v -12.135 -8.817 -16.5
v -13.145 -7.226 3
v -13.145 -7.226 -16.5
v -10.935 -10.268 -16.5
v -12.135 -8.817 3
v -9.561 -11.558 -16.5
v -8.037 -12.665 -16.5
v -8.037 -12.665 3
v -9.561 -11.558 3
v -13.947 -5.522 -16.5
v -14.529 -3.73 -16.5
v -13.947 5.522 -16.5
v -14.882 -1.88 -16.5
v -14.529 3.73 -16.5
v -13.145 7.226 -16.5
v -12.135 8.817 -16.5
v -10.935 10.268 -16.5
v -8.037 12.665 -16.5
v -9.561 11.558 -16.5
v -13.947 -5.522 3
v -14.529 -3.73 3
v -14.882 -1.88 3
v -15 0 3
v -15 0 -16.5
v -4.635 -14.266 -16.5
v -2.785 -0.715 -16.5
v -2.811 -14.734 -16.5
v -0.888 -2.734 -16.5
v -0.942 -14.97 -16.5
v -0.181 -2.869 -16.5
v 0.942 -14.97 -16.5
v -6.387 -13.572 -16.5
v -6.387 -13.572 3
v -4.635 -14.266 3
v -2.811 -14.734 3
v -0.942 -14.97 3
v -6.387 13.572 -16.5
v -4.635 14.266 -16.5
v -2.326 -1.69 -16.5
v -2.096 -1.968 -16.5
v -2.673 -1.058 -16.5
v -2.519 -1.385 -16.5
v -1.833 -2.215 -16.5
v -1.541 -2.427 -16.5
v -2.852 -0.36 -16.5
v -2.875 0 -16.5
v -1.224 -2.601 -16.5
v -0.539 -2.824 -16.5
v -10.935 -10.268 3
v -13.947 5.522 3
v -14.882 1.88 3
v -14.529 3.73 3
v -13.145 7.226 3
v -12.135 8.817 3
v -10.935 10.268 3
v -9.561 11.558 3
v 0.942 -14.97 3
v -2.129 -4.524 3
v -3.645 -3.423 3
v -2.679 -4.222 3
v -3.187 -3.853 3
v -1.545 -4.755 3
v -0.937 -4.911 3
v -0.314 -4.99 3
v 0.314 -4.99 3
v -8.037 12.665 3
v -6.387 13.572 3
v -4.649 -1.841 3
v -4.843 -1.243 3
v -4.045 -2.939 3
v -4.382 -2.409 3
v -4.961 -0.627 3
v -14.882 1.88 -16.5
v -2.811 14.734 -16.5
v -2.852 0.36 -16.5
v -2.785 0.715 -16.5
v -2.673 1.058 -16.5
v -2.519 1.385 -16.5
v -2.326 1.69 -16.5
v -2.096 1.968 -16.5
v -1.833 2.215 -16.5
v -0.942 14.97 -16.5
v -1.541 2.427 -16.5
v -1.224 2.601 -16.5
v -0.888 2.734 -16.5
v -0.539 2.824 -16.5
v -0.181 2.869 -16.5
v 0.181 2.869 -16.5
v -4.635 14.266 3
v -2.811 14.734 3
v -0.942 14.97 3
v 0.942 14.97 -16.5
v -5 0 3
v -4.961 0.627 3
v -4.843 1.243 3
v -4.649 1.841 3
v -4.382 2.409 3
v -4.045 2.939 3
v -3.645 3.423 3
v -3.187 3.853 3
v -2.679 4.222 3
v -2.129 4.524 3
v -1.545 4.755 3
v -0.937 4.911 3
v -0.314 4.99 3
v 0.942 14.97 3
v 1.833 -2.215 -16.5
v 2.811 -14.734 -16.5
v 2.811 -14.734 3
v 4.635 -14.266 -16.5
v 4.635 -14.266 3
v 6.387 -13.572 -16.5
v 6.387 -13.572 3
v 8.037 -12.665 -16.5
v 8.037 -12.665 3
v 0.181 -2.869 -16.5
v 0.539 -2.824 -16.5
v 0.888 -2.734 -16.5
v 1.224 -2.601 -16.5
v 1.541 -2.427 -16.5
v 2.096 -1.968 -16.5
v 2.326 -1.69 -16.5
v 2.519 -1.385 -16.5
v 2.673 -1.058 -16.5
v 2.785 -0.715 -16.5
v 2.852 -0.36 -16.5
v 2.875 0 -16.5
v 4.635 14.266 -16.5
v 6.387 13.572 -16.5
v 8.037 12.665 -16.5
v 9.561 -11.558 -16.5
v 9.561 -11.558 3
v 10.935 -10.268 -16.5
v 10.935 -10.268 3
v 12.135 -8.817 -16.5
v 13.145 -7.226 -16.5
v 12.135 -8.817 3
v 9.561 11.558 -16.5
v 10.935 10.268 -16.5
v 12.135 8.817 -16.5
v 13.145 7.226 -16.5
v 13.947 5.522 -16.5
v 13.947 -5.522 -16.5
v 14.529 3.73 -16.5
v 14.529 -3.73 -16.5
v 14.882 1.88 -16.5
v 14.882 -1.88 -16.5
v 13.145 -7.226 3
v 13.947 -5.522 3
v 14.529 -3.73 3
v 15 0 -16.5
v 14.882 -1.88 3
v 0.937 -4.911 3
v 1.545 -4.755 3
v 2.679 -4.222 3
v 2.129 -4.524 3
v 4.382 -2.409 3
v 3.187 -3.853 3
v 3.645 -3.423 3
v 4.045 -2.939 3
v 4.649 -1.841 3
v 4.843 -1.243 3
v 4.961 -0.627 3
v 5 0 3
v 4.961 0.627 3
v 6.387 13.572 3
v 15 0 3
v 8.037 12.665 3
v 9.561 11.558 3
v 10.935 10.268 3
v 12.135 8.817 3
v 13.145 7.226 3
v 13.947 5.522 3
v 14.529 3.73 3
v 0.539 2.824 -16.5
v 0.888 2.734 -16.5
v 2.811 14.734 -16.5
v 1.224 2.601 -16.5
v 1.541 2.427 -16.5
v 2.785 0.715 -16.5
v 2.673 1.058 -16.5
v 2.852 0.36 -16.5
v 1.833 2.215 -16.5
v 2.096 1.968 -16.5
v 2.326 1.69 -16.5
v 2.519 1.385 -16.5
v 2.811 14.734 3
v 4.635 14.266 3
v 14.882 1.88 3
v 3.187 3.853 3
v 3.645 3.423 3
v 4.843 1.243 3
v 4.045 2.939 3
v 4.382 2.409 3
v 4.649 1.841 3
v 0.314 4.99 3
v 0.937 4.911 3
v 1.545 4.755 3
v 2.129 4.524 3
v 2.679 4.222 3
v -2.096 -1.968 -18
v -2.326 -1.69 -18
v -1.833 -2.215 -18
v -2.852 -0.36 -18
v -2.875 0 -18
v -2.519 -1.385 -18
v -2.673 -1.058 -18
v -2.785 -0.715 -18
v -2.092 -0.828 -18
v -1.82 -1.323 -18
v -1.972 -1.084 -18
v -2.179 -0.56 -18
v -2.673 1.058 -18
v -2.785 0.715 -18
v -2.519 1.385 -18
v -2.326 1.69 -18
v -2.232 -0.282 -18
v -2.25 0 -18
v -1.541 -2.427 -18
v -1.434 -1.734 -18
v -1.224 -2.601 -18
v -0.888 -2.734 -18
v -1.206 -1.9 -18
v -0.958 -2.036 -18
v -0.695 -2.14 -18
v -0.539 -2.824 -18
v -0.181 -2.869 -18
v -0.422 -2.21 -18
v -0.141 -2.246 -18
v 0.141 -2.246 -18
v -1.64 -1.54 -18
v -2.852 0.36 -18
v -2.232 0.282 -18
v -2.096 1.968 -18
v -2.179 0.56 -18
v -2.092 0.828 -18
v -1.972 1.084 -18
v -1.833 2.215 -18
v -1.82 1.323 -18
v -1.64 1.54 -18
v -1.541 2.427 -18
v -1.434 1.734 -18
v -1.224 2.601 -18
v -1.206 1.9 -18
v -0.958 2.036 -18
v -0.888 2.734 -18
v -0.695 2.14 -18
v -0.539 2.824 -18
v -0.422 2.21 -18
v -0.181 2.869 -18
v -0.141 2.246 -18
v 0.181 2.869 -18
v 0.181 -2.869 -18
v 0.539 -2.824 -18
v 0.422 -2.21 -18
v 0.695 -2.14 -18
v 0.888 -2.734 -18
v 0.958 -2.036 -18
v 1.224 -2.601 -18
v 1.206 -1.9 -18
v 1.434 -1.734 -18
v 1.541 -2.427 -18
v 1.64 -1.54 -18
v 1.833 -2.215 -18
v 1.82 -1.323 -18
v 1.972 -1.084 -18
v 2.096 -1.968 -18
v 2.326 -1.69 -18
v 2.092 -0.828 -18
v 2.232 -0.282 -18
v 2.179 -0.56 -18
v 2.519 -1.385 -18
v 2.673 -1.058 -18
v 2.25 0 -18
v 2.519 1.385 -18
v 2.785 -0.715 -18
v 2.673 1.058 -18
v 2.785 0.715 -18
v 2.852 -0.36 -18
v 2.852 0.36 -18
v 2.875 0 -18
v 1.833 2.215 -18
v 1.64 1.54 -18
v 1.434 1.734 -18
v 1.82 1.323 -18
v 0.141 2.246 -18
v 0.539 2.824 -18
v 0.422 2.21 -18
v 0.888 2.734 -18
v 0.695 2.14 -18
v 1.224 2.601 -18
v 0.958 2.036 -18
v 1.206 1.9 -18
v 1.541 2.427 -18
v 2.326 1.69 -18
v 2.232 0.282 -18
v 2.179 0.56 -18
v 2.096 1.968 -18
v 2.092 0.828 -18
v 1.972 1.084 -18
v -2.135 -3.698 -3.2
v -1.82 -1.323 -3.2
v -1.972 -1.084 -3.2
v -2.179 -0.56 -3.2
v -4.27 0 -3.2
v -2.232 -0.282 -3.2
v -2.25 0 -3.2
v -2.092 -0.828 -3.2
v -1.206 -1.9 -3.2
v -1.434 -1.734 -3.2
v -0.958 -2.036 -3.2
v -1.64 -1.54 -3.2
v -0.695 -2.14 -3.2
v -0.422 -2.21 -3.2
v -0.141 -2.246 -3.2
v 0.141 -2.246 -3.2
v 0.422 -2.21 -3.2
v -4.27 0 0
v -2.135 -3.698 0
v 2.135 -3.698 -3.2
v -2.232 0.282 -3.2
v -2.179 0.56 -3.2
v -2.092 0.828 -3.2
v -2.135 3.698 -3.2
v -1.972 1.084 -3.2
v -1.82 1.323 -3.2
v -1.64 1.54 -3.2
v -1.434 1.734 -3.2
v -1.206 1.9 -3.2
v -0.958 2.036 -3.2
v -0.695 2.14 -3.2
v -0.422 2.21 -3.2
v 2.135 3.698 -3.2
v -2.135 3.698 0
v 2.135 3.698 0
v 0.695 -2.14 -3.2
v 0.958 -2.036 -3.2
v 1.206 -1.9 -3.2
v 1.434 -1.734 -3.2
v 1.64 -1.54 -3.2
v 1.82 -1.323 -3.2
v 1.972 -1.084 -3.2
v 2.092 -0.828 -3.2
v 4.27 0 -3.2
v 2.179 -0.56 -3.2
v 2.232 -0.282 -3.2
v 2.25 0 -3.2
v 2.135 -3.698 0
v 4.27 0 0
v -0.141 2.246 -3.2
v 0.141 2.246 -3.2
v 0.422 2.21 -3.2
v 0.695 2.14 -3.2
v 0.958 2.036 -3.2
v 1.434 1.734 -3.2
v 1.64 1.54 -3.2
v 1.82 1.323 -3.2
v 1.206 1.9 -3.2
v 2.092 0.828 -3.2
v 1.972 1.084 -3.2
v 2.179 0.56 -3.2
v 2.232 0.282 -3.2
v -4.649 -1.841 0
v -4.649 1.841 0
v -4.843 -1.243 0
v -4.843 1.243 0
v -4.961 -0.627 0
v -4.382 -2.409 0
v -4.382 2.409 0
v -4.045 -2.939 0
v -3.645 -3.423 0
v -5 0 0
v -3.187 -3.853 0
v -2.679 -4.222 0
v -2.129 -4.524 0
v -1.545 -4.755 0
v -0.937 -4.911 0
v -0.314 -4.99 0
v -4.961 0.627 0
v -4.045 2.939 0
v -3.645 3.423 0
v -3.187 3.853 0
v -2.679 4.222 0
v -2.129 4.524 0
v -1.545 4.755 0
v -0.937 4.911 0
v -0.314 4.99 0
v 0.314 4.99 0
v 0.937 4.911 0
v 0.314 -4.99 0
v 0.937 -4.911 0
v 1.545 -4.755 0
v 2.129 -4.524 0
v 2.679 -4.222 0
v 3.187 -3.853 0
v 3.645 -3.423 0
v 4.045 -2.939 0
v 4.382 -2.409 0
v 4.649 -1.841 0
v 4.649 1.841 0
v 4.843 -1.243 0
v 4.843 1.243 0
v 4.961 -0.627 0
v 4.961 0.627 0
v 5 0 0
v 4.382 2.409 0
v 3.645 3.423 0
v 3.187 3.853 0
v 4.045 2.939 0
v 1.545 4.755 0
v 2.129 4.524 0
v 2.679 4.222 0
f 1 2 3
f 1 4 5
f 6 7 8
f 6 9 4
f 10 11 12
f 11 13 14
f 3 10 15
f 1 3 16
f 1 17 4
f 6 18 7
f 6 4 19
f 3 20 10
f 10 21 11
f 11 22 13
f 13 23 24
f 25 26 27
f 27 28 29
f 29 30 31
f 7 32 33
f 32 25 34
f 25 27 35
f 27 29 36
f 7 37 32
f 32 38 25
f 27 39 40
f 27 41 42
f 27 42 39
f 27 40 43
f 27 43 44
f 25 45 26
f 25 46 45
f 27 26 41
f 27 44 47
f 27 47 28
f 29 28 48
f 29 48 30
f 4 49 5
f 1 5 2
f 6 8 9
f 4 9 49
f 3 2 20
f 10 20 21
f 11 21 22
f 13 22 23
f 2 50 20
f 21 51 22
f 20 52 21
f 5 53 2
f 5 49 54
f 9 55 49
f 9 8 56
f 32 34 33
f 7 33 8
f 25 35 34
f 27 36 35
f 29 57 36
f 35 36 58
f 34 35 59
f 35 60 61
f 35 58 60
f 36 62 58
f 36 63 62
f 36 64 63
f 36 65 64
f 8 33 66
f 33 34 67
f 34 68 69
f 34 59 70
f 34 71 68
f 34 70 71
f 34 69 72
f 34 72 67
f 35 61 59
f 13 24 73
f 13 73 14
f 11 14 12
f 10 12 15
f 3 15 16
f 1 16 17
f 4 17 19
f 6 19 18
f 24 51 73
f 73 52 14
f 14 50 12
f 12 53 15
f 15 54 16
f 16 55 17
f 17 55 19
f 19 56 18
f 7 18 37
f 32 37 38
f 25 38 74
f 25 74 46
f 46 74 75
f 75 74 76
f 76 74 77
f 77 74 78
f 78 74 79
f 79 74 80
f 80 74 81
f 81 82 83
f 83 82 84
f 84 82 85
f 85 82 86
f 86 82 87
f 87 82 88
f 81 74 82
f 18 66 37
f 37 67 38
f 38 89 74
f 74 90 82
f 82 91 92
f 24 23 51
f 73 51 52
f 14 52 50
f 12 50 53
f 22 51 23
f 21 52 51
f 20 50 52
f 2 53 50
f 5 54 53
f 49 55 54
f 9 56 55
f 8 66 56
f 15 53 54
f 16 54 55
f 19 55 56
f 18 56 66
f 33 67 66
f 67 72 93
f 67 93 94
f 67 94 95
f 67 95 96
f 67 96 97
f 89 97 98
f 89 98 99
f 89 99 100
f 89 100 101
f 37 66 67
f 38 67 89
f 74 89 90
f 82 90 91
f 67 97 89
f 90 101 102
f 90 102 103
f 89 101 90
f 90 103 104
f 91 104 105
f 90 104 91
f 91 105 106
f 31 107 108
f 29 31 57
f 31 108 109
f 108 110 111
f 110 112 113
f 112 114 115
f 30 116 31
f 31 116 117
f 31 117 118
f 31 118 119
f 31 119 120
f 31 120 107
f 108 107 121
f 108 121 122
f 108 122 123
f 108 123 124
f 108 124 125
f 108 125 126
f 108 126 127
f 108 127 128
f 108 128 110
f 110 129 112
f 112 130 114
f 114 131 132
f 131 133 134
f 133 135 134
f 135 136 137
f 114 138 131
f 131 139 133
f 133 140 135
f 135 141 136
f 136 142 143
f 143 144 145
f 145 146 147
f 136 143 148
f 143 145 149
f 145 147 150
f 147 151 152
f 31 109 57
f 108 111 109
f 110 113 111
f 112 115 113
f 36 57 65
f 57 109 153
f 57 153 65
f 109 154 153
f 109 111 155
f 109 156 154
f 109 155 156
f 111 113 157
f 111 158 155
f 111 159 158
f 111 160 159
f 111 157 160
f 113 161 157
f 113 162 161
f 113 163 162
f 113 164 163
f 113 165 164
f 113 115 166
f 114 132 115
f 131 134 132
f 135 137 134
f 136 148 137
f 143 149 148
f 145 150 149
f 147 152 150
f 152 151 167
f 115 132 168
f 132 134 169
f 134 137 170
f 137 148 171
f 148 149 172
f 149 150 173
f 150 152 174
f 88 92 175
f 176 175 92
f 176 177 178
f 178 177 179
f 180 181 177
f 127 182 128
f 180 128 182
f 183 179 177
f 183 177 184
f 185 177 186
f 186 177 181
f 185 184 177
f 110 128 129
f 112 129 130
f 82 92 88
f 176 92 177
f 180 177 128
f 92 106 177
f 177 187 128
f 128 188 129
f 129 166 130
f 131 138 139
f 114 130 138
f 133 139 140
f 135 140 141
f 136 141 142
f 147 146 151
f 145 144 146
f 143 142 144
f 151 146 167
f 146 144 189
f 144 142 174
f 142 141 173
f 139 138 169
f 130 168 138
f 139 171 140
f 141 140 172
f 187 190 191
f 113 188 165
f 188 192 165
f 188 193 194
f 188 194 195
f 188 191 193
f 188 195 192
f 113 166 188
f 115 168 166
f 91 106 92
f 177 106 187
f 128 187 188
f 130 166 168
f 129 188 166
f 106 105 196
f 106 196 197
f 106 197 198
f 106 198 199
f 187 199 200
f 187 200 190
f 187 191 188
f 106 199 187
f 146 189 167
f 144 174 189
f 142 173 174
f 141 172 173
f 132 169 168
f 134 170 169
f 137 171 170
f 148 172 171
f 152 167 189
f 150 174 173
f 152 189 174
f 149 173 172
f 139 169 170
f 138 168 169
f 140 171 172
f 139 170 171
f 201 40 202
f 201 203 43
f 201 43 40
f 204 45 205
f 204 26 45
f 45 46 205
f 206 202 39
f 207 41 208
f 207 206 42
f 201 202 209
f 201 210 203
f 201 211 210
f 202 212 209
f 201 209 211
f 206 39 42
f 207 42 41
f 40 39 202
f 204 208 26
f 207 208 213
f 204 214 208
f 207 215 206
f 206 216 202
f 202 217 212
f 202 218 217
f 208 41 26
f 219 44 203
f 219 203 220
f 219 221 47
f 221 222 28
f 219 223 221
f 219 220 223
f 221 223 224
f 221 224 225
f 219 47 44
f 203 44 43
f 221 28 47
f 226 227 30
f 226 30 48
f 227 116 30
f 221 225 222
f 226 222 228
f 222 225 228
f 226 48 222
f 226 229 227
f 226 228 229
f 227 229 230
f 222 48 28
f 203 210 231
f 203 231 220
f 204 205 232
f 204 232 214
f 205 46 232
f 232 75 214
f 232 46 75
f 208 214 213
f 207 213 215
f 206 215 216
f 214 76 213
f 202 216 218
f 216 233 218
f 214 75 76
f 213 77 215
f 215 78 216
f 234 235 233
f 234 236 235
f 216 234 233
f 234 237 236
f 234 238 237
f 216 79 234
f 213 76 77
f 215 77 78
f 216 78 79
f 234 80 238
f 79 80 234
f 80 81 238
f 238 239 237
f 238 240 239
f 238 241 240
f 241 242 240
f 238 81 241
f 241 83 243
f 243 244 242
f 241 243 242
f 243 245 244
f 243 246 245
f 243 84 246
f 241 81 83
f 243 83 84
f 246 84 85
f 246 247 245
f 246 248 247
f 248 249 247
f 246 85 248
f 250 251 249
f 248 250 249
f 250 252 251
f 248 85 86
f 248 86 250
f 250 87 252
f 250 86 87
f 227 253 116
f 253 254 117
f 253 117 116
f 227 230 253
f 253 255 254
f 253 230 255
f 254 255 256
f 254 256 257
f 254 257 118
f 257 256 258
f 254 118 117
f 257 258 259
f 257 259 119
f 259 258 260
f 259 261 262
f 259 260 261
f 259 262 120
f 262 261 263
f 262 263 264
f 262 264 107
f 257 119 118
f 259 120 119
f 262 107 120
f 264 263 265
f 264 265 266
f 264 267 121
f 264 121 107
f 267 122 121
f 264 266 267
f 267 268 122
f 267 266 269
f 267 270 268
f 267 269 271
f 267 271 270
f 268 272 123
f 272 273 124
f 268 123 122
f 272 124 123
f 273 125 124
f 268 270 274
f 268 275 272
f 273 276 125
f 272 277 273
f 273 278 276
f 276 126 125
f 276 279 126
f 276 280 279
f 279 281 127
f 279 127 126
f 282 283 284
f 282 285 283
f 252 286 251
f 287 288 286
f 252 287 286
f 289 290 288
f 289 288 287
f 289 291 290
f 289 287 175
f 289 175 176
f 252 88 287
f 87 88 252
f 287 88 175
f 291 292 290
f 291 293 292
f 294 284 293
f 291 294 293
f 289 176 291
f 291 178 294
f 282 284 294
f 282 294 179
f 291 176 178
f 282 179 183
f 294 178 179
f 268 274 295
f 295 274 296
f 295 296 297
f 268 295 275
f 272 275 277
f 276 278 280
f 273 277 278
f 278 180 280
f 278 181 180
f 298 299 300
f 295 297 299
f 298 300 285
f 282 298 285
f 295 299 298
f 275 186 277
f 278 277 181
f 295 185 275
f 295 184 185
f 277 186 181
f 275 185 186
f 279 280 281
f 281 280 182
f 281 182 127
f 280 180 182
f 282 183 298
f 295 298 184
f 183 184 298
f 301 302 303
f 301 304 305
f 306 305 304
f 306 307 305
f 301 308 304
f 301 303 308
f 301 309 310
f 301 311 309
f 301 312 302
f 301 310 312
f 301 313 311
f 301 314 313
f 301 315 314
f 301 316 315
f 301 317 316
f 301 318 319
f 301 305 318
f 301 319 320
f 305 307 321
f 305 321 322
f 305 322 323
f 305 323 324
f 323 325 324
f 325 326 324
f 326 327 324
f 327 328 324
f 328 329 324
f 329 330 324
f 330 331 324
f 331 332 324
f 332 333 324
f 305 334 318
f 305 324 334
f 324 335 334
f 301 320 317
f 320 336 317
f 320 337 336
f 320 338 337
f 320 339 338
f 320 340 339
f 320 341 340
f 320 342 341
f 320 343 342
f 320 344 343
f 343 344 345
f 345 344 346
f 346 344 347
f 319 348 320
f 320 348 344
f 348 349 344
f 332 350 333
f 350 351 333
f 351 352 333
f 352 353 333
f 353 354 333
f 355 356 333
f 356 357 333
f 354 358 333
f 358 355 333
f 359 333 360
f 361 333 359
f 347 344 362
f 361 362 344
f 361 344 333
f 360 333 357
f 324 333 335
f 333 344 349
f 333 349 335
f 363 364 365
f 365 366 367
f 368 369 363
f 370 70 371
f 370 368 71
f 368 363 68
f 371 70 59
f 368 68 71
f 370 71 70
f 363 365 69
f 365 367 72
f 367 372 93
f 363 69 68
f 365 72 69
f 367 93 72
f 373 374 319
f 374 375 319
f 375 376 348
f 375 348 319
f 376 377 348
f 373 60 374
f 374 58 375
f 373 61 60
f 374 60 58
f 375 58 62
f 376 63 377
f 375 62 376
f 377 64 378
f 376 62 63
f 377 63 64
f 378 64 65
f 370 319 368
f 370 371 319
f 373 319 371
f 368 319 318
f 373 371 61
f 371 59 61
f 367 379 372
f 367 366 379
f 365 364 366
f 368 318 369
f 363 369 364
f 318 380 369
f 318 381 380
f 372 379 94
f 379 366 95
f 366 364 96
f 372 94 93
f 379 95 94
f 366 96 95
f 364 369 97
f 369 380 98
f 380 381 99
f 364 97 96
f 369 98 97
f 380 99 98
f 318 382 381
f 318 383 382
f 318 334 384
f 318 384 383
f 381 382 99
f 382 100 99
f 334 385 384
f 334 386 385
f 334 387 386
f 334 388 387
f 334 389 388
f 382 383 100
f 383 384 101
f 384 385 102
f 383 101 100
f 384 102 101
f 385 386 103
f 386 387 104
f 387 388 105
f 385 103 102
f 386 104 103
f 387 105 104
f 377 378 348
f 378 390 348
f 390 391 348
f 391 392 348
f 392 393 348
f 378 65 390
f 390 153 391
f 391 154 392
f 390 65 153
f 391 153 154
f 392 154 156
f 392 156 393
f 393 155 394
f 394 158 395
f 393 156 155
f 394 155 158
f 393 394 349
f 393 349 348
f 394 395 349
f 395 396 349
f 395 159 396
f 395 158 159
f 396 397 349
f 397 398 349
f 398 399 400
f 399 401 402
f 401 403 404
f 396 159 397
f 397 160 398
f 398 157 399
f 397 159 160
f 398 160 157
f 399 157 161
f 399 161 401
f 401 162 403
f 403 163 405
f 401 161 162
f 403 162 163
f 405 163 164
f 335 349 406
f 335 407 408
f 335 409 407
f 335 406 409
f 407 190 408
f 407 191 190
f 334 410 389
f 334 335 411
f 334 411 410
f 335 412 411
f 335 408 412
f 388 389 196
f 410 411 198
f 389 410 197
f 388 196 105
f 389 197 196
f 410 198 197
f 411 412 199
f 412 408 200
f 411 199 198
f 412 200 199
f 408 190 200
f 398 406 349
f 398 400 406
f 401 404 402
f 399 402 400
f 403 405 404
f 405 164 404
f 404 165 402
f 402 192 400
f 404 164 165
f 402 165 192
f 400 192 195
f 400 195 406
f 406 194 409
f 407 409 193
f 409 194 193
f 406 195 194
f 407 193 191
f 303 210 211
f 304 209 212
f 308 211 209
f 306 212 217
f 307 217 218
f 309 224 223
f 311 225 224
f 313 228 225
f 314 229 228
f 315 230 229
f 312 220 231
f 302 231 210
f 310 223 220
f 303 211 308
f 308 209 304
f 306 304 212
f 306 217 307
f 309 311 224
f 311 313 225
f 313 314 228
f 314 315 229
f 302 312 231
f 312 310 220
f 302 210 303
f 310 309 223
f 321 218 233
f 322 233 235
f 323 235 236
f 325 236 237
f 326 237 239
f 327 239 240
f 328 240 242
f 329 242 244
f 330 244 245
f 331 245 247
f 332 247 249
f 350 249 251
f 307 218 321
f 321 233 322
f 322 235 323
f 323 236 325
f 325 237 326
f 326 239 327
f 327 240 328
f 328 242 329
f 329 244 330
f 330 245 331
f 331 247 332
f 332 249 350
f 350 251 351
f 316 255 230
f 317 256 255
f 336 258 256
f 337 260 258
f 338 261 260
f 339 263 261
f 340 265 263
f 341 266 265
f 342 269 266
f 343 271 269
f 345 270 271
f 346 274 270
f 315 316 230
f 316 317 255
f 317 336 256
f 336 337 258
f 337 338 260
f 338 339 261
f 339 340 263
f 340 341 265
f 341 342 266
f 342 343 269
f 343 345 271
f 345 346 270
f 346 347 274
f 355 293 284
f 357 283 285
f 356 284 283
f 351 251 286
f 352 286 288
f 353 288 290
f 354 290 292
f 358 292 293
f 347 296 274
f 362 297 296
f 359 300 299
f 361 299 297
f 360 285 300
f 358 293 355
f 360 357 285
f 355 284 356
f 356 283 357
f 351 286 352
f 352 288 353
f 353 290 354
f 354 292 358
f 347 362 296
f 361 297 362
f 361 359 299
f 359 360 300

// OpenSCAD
$fn = 50;


difference() {
	union() {
		translate(v = [0, 0, -16.5000000000]) {
			cylinder(h = 19.5000000000, r = 15.0000000000);
		}
		#translate(v = [0, 0, -18.0000000000]) {
			cylinder(h = 18, r = 2.8750000000);
		}
	}
	union() {
		translate(v = [0, 0, 0]) {
			rotate(a = [0, 0, 0]) {
				difference() {
					union() {
						translate(v = [0, 0, -3.2000000000]) {
							linear_extrude(height = 3.2000000000) {
								polygon(points = [[4.2698000000, 0.0000000000], [2.1349000000, 3.6977552691], [-2.1349000000, 3.6977552691], [-4.2698000000, 0.0000000000], [-2.1349000000, -3.6977552691], [2.1349000000, -3.6977552691]]);
							}
						}
					}
					union();
				}
			}
		}
		#cylinder(h = 3, r = 5.0000000000);
		#translate(v = [0, 0, -100.0000000000]) {
			cylinder(h = 200, r = 2.2500000000);
		}
	}
}
